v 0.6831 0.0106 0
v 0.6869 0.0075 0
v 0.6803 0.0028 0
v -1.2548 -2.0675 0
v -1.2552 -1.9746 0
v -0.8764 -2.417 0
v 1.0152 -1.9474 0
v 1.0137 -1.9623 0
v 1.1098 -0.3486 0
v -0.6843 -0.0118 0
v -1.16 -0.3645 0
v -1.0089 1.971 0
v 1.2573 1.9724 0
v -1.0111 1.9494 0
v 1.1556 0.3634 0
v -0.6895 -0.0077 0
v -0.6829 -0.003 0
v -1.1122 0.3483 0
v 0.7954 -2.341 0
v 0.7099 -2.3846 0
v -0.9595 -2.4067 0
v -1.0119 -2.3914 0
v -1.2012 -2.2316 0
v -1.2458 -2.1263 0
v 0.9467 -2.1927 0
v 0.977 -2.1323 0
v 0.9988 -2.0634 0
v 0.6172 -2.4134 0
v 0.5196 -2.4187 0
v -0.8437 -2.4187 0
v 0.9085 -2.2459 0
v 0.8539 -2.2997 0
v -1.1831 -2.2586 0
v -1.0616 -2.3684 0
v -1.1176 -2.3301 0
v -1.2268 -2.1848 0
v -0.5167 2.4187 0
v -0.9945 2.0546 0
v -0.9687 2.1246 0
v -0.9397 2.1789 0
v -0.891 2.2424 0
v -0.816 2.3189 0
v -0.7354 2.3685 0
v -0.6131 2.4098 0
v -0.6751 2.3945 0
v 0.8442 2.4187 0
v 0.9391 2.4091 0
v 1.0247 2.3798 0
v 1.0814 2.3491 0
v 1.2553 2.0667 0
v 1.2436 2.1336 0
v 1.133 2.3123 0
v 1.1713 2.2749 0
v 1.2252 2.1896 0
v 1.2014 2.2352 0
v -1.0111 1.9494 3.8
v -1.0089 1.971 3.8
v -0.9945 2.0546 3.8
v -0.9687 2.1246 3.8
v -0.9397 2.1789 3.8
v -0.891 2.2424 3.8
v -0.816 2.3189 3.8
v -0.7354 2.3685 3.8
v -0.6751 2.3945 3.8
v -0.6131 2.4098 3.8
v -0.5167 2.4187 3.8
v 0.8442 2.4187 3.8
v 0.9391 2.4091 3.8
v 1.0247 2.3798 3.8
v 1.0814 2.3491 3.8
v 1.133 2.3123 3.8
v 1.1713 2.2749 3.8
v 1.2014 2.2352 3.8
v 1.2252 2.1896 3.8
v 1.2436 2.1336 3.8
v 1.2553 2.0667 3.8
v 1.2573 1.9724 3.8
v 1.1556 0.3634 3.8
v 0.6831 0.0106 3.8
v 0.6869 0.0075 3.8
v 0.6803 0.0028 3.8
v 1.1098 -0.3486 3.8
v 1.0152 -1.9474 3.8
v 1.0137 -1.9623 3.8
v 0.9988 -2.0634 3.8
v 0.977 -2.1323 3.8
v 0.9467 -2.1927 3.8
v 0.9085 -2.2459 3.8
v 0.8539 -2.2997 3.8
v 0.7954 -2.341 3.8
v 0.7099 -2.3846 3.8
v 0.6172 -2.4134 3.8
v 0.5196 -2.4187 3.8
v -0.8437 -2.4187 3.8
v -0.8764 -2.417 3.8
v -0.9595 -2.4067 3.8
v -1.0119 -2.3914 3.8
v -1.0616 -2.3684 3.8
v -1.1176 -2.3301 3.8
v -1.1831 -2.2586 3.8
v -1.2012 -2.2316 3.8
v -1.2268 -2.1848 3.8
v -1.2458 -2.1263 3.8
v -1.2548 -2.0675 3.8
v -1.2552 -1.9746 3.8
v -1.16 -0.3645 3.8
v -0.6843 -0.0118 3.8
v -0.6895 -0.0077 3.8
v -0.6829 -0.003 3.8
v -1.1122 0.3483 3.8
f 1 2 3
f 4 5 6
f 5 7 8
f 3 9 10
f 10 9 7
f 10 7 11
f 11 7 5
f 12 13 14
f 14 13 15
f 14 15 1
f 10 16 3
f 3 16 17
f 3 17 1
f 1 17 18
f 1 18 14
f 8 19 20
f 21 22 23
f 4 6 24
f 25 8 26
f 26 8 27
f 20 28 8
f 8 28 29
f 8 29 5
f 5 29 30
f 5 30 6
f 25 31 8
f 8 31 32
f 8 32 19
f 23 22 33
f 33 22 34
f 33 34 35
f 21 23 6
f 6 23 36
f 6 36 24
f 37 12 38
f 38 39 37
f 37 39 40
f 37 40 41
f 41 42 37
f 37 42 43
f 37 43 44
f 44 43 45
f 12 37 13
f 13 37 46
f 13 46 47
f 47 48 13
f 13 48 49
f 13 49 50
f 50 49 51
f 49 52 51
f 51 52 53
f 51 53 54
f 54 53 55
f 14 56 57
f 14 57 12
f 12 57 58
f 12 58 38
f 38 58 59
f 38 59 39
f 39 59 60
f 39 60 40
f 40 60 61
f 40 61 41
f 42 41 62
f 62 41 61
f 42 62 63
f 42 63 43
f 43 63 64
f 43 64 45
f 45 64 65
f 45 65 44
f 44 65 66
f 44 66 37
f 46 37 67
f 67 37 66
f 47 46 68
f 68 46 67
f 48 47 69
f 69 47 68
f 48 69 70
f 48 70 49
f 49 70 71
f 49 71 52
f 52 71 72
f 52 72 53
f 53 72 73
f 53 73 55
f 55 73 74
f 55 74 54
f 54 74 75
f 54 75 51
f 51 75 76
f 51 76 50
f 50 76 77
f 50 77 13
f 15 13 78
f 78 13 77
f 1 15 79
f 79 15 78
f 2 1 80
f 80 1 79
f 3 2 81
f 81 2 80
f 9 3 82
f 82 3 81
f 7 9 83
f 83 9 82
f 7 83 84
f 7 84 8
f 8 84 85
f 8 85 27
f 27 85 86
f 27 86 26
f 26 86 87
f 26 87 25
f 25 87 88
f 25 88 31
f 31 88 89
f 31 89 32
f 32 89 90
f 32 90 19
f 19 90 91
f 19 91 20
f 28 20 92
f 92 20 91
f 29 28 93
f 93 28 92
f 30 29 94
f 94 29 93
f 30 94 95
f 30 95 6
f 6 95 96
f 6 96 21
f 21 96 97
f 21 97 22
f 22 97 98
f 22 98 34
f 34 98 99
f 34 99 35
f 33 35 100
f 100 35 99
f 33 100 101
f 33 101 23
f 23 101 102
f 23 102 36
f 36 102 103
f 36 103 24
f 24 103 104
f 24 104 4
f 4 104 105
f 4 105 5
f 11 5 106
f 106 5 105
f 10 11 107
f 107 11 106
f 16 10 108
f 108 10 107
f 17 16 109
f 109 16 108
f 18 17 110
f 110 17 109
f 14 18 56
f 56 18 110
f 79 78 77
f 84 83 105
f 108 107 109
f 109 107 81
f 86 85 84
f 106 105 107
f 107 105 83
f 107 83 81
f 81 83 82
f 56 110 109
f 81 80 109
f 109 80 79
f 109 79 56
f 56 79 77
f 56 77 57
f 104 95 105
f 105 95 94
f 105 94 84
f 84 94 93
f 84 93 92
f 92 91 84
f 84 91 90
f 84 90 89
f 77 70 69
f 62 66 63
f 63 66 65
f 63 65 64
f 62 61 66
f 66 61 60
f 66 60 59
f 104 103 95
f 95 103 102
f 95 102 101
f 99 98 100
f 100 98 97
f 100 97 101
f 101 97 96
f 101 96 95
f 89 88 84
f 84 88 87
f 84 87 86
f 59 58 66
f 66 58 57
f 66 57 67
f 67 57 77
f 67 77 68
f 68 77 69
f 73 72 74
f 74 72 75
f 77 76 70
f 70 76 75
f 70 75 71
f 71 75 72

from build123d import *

# Parameters (mm, degrees)
EXTRUDE_1_DEPTH     = 3.8
CUT_EXTRUDE_START   = -3.8
CUT_EXTRUDE_1_DEPTH = 3.8


# Read off the part's stored shape, not the designer's step: Вырез-Вытянуть-Тонкостенный1
with BuildPart() as part:
    # Эскиз1 → Бобышка-Вытянуть1 (new body)
    with BuildSketch(Plane.XY):
        with BuildLine():
            Line((-1.318255437, 0.258478546), (-1.011455473, 0.007460394))
            Line((-1.011455473, 0.007460394), (-1.021853397, 0))
            Line((-1.021853397, 0), (-1.013303446, -0.006755517))
            Line((-1.013303446, -0.006755517), (-1.354182957, -0.259476533))
            Line((-1.354182957, -0.259476533), (-1.45497961, -1.965035745))
            add(Edge.make_bspline(
                [(-1.45497961, -1.965035745), (-1.45640581, -2.003703184), (-1.459192354, -2.079252548), (-1.439195647, -2.189444213), (-1.401920385, -2.293069865), (-1.360887275, -2.352996026), (-1.340211143, -2.383192158)],
                knots=[0, 0, 0, 0, 0.261167497, 0.510275296, 0.753233117, 1, 1, 1, 1], degree=3))
            Line((-1.340211143, -2.383192158), (-1.252388317, -2.478998878))
            add(Edge.make_bspline(
                [(-1.252388317, -2.478998878), (-1.223826424, -2.500445794), (-1.166852504, -2.543227091), (-1.067916042, -2.587045412), (-0.960717691, -2.613654188), (-0.886287022, -2.617003366), (-0.848203717, -2.618717012)],
                knots=[0, 0, 0, 0, 0.244974936, 0.488664468, 0.738369311, 1, 1, 1, 1], degree=3))
            Line((-0.848203717, -2.618717012), (0.525025935, -2.618717012))
            Line((0.525025935, -2.618717012), (0.652768229, -2.611731105))
            Line((0.652768229, -2.611731105), (0.781508508, -2.571811638))
            add(Edge.make_bspline(
                [(0.781508508, -2.571811638), (0.81386736, -2.556985687), (0.876622239, -2.528233099), (0.961545196, -2.472745684), (1.034068666, -2.408414236), (1.094840874, -2.335847946), (1.143241075, -2.25453384), (1.180521537, -2.165328685), (1.204445871, -2.066917619), (1.211164024, -1.998424391), (1.214634721, -1.963039772)],
                knots=[0, 0, 0, 0, 0.134662333, 0.261156306, 0.382520903, 0.500597599, 0.618135375, 0.739565345, 0.865455585, 1, 1, 1, 1], degree=3))
            Line((1.214634721, -1.963039772), (1.315431375, -0.258478546))
            Line((1.315431375, -0.258478546), (1.008642316, -0.007469317))
            Line((1.008642316, -0.007469317), (1.019029335, 0))
            Line((1.019029335, 0), (1.011344624, 0.00607187))
            Line((1.011344624, 0.00607187), (1.349362921, 0.258478546))
            Line((1.349362921, 0.258478546), (1.457145481, 1.964037759))
            add(Edge.make_bspline(
                [(1.457145481, 1.964037759), (1.457845677, 1.998685903), (1.459192354, 2.065324146), (1.444437242, 2.161701489), (1.419031977, 2.250026835), (1.380625008, 2.33058564), (1.328848362, 2.402161133), (1.265007239, 2.465541592), (1.189193466, 2.521537566), (1.13164527, 2.550062936), (1.101862228, 2.564825732)],
                knots=[0, 0, 0, 0, 0.13890651, 0.267156752, 0.389710114, 0.50679238, 0.623546631, 0.742540539, 0.866756453, 1, 1, 1, 1], degree=3))
            Line((1.101862228, 2.564825732), (0.982103828, 2.605743185))
            Line((0.982103828, 2.605743185), (0.854361535, 2.618717012))
            Line((0.854361535, 2.618717012), (-0.520864091, 2.618717012))
            add(Edge.make_bspline(
                [(-0.520864091, 2.618717012), (-0.559305217, 2.617118453), (-0.635572979, 2.613946891), (-0.746172278, 2.584611695), (-0.851357794, 2.538485458), (-0.914071086, 2.494441407), (-0.94600641, 2.472012972)],
                knots=[0, 0, 0, 0, 0.25146882, 0.498917843, 0.744835256, 1, 1, 1, 1], degree=3))
            Line((-0.94600641, 2.472012972), (-1.039817157, 2.376206252))
            add(Edge.make_bspline(
                [(-1.039817157, 2.376206252), (-1.064380545, 2.346448217), (-1.112795808, 2.28779413), (-1.162709181, 2.185792002), (-1.198785119, 2.078732957), (-1.206544744, 2.003910758), (-1.210472877, 1.966033732)],
                knots=[0, 0, 0, 0, 0.25502293, 0.502658773, 0.748232386, 1, 1, 1, 1], degree=3))
            Line((-1.210472877, 1.966033732), (-1.318255437, 0.258478546))
        make_face()
    extrude(amount=EXTRUDE_1_DEPTH)

    # Вырез-Вытянуть-Тонкостенный1 outline → Вырез-Вытянуть-Тонкостенный1 (cut)
    with BuildSketch(Plane.XY.offset(3.8).offset(CUT_EXTRUDE_START)):
        with BuildLine():
            Line((-1.354182957, -0.259476533), (-1.45497961, -1.965035745))
            add(Edge.make_bspline(
                [(-1.45497961, -1.965035745), (-1.45640581, -2.003703184), (-1.459192354, -2.079252548), (-1.439195647, -2.189444213), (-1.401920385, -2.293069865), (-1.360887275, -2.352996026), (-1.340211143, -2.383192158)],
                knots=[0, 0, 0, 0, 0.261167497, 0.510275296, 0.753233117, 1, 1, 1, 1], degree=3))
            Line((-1.340211143, -2.383192158), (-1.252388317, -2.478998878))
            add(Edge.make_bspline(
                [(-1.252388317, -2.478998878), (-1.223826424, -2.500445794), (-1.166852504, -2.543227091), (-1.067916042, -2.587045412), (-0.960717691, -2.613654188), (-0.886287022, -2.617003366), (-0.848203717, -2.618717012)],
                knots=[0, 0, 0, 0, 0.244974936, 0.488664468, 0.738369311, 1, 1, 1, 1], degree=3))
            Line((-0.848203717, -2.618717012), (0.525025935, -2.618717012))
            Line((0.525025935, -2.618717012), (0.652768229, -2.611731105))
            Line((0.652768229, -2.611731105), (0.781508508, -2.571811638))
            add(Edge.make_bspline(
                [(0.781508508, -2.571811638), (0.81386736, -2.556985687), (0.876622239, -2.528233099), (0.961545196, -2.472745684), (1.034068666, -2.408414236), (1.094840874, -2.335847946), (1.143241075, -2.25453384), (1.180521537, -2.165328685), (1.204445871, -2.066917619), (1.211164024, -1.998424391), (1.214634721, -1.963039772)],
                knots=[0, 0, 0, 0, 0.134662333, 0.261156306, 0.382520903, 0.500597599, 0.618135375, 0.739565345, 0.865455585, 1, 1, 1, 1], degree=3))
            Line((1.214634721, -1.963039772), (1.315431375, -0.258478546))
            Line((1.315431375, -0.258478546), (1.008642316, -0.007469317))
            Line((1.008642316, -0.007469317), (1.019029335, 0))
            Line((1.019029335, 0), (1.011344624, 0.00607187))
            Line((1.011344624, 0.00607187), (1.349362921, 0.258478546))
            Line((1.349362921, 0.258478546), (1.457145481, 1.964037759))
            add(Edge.make_bspline(
                [(1.457145481, 1.964037759), (1.457845677, 1.998685903), (1.459192354, 2.065324146), (1.444437242, 2.161701489), (1.419031977, 2.250026835), (1.380625008, 2.33058564), (1.328848362, 2.402161133), (1.265007239, 2.465541592), (1.189193466, 2.521537566), (1.13164527, 2.550062936), (1.101862228, 2.564825732)],
                knots=[0, 0, 0, 0, 0.13890651, 0.267156752, 0.389710114, 0.50679238, 0.623546631, 0.742540539, 0.866756453, 1, 1, 1, 1], degree=3))
            Line((1.101862228, 2.564825732), (0.982103828, 2.605743185))
            Line((0.982103828, 2.605743185), (0.854361535, 2.618717012))
            Line((0.854361535, 2.618717012), (-0.520864091, 2.618717012))
            add(Edge.make_bspline(
                [(-0.520864091, 2.618717012), (-0.559305217, 2.617118453), (-0.635572979, 2.613946891), (-0.746172278, 2.584611695), (-0.851357794, 2.538485458), (-0.914071086, 2.494441407), (-0.94600641, 2.472012972)],
                knots=[0, 0, 0, 0, 0.25146882, 0.498917843, 0.744835256, 1, 1, 1, 1], degree=3))
            Line((-0.94600641, 2.472012972), (-1.039817157, 2.376206252))
            add(Edge.make_bspline(
                [(-1.039817157, 2.376206252), (-1.064380545, 2.346448217), (-1.112795808, 2.28779413), (-1.162709181, 2.185792002), (-1.198785119, 2.078732957), (-1.206544744, 2.003910758), (-1.210472877, 1.966033732)],
                knots=[0, 0, 0, 0, 0.25502293, 0.502658773, 0.748232386, 1, 1, 1, 1], degree=3))
            Line((-1.210472877, 1.966033732), (-1.318255437, 0.258478546))
            Line((-1.318255437, 0.258478546), (-1.011455473, 0.007460394))
            Line((-1.011455473, 0.007460394), (-1.021853397, 0))
            Line((-1.021853397, 0), (-1.013303446, -0.006755517))
            Line((-1.013303446, -0.006755517), (-1.354182957, -0.259476533))
        make_face()
        with BuildLine():
            add(Edge.make_bspline(
                [(-0.890962738, 2.242360272), (-0.908040345, 2.22164355), (-0.925227906, 2.200997417), (-0.954461408, 2.156404341), (-0.966010446, 2.132055229), (-0.986425308, 2.081995312), (-0.995138703, 2.056401241), (-1.005717533, 2.003259432), (-1.008329368, 1.976320811), (-1.011124321, 1.949407339)],
                knots=[0, 0, 0, 0, 0.25, 0.25, 0.5, 0.5, 0.75, 0.75, 1, 1, 1, 1], degree=3))
            Line((-0.890962738, 2.242360272), (-0.816049696, 2.318867208))
            add(Edge.make_bspline(
                [(-0.516702669, 2.418717012), (-0.570312193, 2.416479981), (-0.623850037, 2.411902324), (-0.726132173, 2.377137017), (-0.771962058, 2.349658076), (-0.816049696, 2.318867208)],
                knots=[0, 0, 0, 0, 0.5, 0.5, 1, 1, 1, 1], degree=3))
            Line((-0.516702669, 2.418717012), (0.844231341, 2.418717012))
            Line((0.844231341, 2.418717012), (0.939111557, 2.40908074))
            Line((0.939111557, 2.40908074), (1.024738311, 2.379824932))
            add(Edge.make_bspline(
                [(1.257272687, 1.97236386), (1.258113876, 2.01430851), (1.258417785, 2.056183749), (1.244201982, 2.13801917), (1.232253283, 2.179429486), (1.19270388, 2.253176423), (1.164342715, 2.285697526), (1.100274837, 2.340200553), (1.062767239, 2.360897114), (1.024738311, 2.379824932)],
                knots=[0, 0, 0, 0, 0.25, 0.25, 0.5, 0.5, 0.75, 0.75, 1, 1, 1, 1], degree=3))
            Line((1.257272687, 1.97236386), (1.155594081, 0.363394067))
            Line((1.155594081, 0.363394067), (0.683073322, 0.010551055))
            Line((0.683073322, 0.010551055), (0.686913475, 0.00751686))
            Line((0.686913475, 0.00751686), (0.680300718, 0.00276162))
            Line((0.680300718, 0.00276162), (1.10975234, -0.348607889))
            Line((1.10975234, -0.348607889), (1.015212194, -1.947366014))
            add(Edge.make_bspline(
                [(0.709904759, -2.384620171), (0.75282168, -2.364896626), (0.795043999, -2.344136949), (0.870185675, -2.288740437), (0.904729386, -2.254562712), (0.958681636, -2.177034249), (0.979317247, -2.133222239), (1.00562776, -2.042372937), (1.01055567, -1.994793275), (1.015212194, -1.947366014)],
                knots=[0, 0, 0, 0, 0.25, 0.25, 0.5, 0.5, 0.75, 0.75, 1, 1, 1, 1], degree=3))
            Line((0.709904759, -2.384620171), (0.617154733, -2.413379869))
            Line((0.617154733, -2.413379869), (0.519561268, -2.418717012))
            Line((0.519561268, -2.418717012), (-0.843701007, -2.418717012))
            add(Edge.make_bspline(
                [(-1.117559098, -2.330106742), (-1.09785274, -2.344792791), (-1.078103779, -2.359401604), (-1.035410075, -2.382825575), (-1.012463689, -2.391955237), (-0.941603834, -2.413573455), (-0.892704311, -2.416504219), (-0.843701007, -2.418717012)],
                knots=[0, 0, 0, 0, 0.25, 0.25, 0.5, 0.5, 1, 1, 1, 1], degree=3))
            Line((-1.117559098, -2.330106742), (-1.183149998, -2.258553033))
            add(Edge.make_bspline(
                [(-1.255197127, -1.974621043), (-1.257032309, -2.024431579), (-1.257983846, -2.074423596), (-1.240751527, -2.14778759), (-1.233280402, -2.171827335), (-1.211527999, -2.217181786), (-1.197272925, -2.237827687), (-1.183149998, -2.258553033)],
                knots=[0, 0, 0, 0, 0.5, 0.5, 0.75, 0.75, 1, 1, 1, 1], degree=3))
            Line((-1.255197127, -1.974621043), (-1.160041559, -0.364513455))
            Line((-1.160041559, -0.364513455), (-0.684303055, -0.011810772))
            Line((-0.684303055, -0.011810772), (-0.689507135, -0.007698907))
            Line((-0.689507135, -0.007698907), (-0.682891645, -0.002952367))
            Line((-0.682891645, -0.002952367), (-1.112188393, 0.348290427))
            Line((-1.112188393, 0.348290427), (-1.011124321, 1.949407339))
        make_face(mode=Mode.SUBTRACT)
    extrude(amount=CUT_EXTRUDE_1_DEPTH, mode=Mode.SUBTRACT)


solid = part.part
